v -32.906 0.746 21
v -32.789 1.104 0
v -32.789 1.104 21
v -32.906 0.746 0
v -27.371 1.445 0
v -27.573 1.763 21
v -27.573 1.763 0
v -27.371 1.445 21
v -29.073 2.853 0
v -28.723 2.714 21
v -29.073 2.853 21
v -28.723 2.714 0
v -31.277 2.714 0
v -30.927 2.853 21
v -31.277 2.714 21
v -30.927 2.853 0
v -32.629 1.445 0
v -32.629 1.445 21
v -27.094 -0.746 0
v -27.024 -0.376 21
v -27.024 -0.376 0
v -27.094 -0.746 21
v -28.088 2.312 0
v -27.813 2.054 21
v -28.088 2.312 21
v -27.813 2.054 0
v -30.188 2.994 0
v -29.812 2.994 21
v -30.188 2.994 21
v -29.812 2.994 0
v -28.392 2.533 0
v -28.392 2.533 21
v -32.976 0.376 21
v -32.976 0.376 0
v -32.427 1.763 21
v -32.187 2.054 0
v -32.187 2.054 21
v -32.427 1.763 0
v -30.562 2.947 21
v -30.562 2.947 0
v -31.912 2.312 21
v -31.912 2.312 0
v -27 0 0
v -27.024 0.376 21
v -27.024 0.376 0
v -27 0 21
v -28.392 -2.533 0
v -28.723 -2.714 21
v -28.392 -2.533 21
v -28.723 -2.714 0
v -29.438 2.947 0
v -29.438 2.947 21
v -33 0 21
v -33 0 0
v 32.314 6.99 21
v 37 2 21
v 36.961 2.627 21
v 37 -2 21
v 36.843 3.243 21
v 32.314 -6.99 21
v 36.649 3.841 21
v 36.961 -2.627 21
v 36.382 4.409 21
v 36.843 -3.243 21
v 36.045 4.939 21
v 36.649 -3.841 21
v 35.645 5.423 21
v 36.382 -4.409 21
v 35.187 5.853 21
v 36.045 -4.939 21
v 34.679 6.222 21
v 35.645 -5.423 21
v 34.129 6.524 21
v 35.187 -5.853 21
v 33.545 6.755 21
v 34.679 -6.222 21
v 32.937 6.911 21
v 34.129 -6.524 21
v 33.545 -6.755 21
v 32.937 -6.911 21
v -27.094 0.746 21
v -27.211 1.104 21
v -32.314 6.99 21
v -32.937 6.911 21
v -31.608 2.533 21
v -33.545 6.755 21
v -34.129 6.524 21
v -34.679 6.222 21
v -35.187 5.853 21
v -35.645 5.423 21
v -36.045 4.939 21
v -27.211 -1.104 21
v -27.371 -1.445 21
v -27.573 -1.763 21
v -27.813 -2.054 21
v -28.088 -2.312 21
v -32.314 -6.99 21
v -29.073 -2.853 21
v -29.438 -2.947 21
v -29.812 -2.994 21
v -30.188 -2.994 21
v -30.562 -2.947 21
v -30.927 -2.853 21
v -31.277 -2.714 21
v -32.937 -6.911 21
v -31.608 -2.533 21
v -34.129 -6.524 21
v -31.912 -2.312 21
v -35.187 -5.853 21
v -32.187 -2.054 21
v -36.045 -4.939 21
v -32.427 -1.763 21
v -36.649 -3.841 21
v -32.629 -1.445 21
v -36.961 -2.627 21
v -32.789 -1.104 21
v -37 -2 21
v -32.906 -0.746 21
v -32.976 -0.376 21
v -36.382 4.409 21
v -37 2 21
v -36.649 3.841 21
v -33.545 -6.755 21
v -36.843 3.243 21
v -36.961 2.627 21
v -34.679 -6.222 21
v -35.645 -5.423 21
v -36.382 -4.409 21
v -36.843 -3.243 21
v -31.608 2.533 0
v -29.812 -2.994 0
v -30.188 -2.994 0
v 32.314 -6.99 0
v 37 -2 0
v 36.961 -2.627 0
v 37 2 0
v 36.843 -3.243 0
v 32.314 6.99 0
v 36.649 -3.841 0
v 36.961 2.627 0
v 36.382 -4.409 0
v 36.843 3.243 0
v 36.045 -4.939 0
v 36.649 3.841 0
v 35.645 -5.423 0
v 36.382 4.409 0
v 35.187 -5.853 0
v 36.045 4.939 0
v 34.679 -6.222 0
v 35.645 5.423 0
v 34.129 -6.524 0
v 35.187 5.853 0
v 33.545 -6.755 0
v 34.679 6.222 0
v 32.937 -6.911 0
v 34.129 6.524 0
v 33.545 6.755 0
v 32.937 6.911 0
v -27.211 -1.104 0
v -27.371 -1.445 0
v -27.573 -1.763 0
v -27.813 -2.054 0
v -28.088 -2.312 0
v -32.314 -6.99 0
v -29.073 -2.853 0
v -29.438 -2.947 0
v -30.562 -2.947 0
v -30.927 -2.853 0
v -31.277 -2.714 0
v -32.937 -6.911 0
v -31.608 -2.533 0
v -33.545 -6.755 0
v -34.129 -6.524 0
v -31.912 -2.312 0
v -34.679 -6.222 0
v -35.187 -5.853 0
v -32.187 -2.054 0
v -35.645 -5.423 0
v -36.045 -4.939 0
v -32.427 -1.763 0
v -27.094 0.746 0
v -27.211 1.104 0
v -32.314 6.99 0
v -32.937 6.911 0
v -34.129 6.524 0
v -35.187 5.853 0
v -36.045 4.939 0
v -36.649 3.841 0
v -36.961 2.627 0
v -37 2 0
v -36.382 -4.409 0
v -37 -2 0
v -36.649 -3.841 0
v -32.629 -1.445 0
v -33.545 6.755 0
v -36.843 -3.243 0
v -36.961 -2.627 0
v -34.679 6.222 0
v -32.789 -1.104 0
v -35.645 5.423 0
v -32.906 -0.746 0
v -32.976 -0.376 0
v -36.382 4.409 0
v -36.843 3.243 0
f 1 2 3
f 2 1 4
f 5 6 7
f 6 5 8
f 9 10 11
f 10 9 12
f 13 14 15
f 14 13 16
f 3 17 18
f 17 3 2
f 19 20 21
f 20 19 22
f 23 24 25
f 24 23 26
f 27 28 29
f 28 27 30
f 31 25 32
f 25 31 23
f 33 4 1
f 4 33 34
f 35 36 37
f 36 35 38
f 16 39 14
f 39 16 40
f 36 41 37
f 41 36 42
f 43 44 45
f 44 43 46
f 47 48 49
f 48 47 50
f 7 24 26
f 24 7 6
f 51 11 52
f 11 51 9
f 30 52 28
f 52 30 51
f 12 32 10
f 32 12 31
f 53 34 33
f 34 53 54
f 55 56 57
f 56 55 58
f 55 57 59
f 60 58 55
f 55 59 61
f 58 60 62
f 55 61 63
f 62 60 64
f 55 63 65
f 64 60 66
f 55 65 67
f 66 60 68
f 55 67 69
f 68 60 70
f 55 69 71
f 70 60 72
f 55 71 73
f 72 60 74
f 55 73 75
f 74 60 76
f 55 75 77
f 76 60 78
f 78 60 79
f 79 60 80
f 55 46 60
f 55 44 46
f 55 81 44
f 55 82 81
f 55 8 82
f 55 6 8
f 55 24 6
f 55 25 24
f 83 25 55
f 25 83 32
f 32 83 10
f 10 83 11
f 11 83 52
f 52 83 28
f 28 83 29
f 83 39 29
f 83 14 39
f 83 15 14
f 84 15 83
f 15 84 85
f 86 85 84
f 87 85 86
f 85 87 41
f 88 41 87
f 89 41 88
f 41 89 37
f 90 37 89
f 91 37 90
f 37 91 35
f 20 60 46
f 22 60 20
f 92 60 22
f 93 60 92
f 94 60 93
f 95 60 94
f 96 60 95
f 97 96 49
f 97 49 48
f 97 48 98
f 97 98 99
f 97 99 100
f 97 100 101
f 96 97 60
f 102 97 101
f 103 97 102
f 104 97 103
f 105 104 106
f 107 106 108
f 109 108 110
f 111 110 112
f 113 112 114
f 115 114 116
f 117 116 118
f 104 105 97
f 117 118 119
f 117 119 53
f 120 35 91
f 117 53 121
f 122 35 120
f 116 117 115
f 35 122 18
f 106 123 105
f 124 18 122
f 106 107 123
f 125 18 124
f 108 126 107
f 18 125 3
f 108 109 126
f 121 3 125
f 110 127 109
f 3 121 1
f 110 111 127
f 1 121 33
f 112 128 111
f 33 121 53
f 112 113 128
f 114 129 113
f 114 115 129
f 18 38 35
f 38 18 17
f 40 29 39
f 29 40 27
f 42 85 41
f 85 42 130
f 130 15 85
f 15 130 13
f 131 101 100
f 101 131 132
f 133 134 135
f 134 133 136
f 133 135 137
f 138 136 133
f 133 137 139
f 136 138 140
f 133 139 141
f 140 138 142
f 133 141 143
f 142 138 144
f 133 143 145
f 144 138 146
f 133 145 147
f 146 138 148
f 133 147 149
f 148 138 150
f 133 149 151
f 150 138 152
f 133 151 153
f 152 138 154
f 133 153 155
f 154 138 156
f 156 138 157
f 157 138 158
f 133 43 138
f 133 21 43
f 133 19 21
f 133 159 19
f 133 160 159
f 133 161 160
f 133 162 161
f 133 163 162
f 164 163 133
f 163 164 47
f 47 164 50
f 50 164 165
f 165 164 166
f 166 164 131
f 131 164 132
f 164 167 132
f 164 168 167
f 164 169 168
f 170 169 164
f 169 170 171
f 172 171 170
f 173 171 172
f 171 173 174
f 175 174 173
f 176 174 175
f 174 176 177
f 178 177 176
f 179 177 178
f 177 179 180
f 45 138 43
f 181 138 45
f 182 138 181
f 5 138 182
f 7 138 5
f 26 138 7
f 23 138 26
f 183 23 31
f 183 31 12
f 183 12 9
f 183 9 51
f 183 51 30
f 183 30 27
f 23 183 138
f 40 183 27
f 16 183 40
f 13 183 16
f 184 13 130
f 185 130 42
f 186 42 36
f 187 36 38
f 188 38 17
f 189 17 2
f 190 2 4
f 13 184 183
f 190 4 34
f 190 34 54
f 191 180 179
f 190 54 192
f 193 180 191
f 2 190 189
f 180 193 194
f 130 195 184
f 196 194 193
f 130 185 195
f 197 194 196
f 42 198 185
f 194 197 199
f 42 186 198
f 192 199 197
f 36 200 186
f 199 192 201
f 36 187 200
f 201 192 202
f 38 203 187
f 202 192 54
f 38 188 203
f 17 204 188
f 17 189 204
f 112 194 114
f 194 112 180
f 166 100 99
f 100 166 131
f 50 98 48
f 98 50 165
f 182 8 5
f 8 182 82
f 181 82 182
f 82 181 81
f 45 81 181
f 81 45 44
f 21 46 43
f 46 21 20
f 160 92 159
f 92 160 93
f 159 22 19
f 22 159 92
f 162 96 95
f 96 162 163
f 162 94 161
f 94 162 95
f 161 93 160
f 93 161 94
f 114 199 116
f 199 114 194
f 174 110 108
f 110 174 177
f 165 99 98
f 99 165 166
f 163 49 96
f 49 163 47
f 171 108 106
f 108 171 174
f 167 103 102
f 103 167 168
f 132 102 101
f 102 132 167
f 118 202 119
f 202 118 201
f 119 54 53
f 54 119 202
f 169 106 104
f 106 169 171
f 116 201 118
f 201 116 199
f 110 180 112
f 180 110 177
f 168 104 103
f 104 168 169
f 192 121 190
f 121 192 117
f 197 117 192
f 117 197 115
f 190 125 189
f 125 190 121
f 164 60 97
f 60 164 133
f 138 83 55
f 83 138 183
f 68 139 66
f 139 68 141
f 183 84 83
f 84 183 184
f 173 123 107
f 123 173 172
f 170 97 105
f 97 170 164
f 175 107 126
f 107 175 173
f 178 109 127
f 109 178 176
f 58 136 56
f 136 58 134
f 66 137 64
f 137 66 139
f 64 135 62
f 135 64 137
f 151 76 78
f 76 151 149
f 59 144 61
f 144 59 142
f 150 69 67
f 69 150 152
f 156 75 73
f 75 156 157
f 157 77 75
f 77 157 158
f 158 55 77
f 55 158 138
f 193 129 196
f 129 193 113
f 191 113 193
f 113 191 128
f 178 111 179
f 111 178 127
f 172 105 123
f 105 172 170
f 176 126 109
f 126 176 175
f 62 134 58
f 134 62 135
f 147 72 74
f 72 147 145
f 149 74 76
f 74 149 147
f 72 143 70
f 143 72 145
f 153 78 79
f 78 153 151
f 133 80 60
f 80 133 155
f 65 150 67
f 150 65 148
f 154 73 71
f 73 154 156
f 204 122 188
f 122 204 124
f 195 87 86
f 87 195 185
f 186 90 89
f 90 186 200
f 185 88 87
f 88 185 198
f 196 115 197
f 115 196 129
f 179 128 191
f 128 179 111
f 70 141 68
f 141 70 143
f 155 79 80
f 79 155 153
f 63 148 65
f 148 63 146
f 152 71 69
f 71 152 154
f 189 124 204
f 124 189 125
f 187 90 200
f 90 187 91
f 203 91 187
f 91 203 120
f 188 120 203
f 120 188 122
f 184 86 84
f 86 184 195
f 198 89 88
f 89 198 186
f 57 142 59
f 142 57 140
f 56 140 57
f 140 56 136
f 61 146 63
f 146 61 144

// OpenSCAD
$fn = 50;


difference() {
	union() {
		hull() {
			translate(v = [-32.0000000000, 2.0000000000, 0]) {
				cylinder(h = 21, r = 5);
			}
			translate(v = [32.0000000000, 2.0000000000, 0]) {
				cylinder(h = 21, r = 5);
			}
			translate(v = [-32.0000000000, -2.0000000000, 0]) {
				cylinder(h = 21, r = 5);
			}
			translate(v = [32.0000000000, -2.0000000000, 0]) {
				cylinder(h = 21, r = 5);
			}
		}
	}
	union() {
		translate(v = [-30.0000000000, 0.0000000000, 0]) {
			cylinder(h = 21, r = 3.0000000000);
		}
		translate(v = [-30.0000000000, 0.0000000000, 0]) {
			cylinder(h = 21, r = 1.5000000000);
		}
		translate(v = [-30.0000000000, 0.0000000000, 0]) {
			cylinder(h = 21, r = 1.5000000000);
		}
		translate(v = [-30.0000000000, 0.0000000000, 0]) {
			cylinder(h = 21, r = 1.5000000000);
		}
	}
}
